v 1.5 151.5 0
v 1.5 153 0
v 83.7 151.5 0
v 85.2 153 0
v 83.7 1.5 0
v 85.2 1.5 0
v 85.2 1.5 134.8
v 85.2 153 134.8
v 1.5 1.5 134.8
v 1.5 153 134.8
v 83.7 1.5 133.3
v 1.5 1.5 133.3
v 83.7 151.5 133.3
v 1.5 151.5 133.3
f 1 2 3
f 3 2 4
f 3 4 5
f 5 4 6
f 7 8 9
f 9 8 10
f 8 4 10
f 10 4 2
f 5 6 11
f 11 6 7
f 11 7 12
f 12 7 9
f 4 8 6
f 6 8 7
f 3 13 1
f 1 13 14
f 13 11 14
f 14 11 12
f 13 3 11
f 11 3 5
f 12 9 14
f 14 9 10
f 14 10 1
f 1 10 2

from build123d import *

# Parameters (mm, degrees)
SKETCH1_W           = 153
SKETCH1_H           = 134.8
BOSS_EXTRUDE1_DEPTH = 85.2
SHELL1_T            = -1.5
SKETCH2_W           = 85.2
SKETCH2_H           = 134.8
CUT_EXTRUDE1_DEPTH  = 1.5
SKETCH3_W           = 151.5
SKETCH3_H           = 134.8
CUT_EXTRUDE2_DEPTH  = 1.5


with BuildPart() as part:
    # Sketch1 → Boss-Extrude1 (new body)
    with BuildSketch(Plane.YZ):
        with Locations((76.5, 67.4)):
            Rectangle(SKETCH1_W, SKETCH1_H)
    extrude(amount=BOSS_EXTRUDE1_DEPTH)

    # Shell1
    shell1_openings = [part.faces().sort_by_distance(p)[0] for p in [
        (42.6, 76.5, 0),
    ]]
    offset(amount=SHELL1_T, openings=shell1_openings, kind=Kind.INTERSECTION)

    # Sketch2 → Cut-Extrude1 (cut)
    with BuildSketch(Plane.XZ):
        with Locations((42.6, 67.4)):
            Rectangle(SKETCH2_W, SKETCH2_H)
    extrude(amount=-CUT_EXTRUDE1_DEPTH, mode=Mode.SUBTRACT)

    # Sketch3 → Cut-Extrude2 (cut)
    with BuildSketch(Plane(origin=(0, 0, 0), x_dir=(0, -1, 0), z_dir=(-1, 0, 0))):
        with Locations((-77.25, 67.4)):
            Rectangle(SKETCH3_W, SKETCH3_H)
    extrude(amount=-CUT_EXTRUDE2_DEPTH, mode=Mode.SUBTRACT)


solid = part.part
